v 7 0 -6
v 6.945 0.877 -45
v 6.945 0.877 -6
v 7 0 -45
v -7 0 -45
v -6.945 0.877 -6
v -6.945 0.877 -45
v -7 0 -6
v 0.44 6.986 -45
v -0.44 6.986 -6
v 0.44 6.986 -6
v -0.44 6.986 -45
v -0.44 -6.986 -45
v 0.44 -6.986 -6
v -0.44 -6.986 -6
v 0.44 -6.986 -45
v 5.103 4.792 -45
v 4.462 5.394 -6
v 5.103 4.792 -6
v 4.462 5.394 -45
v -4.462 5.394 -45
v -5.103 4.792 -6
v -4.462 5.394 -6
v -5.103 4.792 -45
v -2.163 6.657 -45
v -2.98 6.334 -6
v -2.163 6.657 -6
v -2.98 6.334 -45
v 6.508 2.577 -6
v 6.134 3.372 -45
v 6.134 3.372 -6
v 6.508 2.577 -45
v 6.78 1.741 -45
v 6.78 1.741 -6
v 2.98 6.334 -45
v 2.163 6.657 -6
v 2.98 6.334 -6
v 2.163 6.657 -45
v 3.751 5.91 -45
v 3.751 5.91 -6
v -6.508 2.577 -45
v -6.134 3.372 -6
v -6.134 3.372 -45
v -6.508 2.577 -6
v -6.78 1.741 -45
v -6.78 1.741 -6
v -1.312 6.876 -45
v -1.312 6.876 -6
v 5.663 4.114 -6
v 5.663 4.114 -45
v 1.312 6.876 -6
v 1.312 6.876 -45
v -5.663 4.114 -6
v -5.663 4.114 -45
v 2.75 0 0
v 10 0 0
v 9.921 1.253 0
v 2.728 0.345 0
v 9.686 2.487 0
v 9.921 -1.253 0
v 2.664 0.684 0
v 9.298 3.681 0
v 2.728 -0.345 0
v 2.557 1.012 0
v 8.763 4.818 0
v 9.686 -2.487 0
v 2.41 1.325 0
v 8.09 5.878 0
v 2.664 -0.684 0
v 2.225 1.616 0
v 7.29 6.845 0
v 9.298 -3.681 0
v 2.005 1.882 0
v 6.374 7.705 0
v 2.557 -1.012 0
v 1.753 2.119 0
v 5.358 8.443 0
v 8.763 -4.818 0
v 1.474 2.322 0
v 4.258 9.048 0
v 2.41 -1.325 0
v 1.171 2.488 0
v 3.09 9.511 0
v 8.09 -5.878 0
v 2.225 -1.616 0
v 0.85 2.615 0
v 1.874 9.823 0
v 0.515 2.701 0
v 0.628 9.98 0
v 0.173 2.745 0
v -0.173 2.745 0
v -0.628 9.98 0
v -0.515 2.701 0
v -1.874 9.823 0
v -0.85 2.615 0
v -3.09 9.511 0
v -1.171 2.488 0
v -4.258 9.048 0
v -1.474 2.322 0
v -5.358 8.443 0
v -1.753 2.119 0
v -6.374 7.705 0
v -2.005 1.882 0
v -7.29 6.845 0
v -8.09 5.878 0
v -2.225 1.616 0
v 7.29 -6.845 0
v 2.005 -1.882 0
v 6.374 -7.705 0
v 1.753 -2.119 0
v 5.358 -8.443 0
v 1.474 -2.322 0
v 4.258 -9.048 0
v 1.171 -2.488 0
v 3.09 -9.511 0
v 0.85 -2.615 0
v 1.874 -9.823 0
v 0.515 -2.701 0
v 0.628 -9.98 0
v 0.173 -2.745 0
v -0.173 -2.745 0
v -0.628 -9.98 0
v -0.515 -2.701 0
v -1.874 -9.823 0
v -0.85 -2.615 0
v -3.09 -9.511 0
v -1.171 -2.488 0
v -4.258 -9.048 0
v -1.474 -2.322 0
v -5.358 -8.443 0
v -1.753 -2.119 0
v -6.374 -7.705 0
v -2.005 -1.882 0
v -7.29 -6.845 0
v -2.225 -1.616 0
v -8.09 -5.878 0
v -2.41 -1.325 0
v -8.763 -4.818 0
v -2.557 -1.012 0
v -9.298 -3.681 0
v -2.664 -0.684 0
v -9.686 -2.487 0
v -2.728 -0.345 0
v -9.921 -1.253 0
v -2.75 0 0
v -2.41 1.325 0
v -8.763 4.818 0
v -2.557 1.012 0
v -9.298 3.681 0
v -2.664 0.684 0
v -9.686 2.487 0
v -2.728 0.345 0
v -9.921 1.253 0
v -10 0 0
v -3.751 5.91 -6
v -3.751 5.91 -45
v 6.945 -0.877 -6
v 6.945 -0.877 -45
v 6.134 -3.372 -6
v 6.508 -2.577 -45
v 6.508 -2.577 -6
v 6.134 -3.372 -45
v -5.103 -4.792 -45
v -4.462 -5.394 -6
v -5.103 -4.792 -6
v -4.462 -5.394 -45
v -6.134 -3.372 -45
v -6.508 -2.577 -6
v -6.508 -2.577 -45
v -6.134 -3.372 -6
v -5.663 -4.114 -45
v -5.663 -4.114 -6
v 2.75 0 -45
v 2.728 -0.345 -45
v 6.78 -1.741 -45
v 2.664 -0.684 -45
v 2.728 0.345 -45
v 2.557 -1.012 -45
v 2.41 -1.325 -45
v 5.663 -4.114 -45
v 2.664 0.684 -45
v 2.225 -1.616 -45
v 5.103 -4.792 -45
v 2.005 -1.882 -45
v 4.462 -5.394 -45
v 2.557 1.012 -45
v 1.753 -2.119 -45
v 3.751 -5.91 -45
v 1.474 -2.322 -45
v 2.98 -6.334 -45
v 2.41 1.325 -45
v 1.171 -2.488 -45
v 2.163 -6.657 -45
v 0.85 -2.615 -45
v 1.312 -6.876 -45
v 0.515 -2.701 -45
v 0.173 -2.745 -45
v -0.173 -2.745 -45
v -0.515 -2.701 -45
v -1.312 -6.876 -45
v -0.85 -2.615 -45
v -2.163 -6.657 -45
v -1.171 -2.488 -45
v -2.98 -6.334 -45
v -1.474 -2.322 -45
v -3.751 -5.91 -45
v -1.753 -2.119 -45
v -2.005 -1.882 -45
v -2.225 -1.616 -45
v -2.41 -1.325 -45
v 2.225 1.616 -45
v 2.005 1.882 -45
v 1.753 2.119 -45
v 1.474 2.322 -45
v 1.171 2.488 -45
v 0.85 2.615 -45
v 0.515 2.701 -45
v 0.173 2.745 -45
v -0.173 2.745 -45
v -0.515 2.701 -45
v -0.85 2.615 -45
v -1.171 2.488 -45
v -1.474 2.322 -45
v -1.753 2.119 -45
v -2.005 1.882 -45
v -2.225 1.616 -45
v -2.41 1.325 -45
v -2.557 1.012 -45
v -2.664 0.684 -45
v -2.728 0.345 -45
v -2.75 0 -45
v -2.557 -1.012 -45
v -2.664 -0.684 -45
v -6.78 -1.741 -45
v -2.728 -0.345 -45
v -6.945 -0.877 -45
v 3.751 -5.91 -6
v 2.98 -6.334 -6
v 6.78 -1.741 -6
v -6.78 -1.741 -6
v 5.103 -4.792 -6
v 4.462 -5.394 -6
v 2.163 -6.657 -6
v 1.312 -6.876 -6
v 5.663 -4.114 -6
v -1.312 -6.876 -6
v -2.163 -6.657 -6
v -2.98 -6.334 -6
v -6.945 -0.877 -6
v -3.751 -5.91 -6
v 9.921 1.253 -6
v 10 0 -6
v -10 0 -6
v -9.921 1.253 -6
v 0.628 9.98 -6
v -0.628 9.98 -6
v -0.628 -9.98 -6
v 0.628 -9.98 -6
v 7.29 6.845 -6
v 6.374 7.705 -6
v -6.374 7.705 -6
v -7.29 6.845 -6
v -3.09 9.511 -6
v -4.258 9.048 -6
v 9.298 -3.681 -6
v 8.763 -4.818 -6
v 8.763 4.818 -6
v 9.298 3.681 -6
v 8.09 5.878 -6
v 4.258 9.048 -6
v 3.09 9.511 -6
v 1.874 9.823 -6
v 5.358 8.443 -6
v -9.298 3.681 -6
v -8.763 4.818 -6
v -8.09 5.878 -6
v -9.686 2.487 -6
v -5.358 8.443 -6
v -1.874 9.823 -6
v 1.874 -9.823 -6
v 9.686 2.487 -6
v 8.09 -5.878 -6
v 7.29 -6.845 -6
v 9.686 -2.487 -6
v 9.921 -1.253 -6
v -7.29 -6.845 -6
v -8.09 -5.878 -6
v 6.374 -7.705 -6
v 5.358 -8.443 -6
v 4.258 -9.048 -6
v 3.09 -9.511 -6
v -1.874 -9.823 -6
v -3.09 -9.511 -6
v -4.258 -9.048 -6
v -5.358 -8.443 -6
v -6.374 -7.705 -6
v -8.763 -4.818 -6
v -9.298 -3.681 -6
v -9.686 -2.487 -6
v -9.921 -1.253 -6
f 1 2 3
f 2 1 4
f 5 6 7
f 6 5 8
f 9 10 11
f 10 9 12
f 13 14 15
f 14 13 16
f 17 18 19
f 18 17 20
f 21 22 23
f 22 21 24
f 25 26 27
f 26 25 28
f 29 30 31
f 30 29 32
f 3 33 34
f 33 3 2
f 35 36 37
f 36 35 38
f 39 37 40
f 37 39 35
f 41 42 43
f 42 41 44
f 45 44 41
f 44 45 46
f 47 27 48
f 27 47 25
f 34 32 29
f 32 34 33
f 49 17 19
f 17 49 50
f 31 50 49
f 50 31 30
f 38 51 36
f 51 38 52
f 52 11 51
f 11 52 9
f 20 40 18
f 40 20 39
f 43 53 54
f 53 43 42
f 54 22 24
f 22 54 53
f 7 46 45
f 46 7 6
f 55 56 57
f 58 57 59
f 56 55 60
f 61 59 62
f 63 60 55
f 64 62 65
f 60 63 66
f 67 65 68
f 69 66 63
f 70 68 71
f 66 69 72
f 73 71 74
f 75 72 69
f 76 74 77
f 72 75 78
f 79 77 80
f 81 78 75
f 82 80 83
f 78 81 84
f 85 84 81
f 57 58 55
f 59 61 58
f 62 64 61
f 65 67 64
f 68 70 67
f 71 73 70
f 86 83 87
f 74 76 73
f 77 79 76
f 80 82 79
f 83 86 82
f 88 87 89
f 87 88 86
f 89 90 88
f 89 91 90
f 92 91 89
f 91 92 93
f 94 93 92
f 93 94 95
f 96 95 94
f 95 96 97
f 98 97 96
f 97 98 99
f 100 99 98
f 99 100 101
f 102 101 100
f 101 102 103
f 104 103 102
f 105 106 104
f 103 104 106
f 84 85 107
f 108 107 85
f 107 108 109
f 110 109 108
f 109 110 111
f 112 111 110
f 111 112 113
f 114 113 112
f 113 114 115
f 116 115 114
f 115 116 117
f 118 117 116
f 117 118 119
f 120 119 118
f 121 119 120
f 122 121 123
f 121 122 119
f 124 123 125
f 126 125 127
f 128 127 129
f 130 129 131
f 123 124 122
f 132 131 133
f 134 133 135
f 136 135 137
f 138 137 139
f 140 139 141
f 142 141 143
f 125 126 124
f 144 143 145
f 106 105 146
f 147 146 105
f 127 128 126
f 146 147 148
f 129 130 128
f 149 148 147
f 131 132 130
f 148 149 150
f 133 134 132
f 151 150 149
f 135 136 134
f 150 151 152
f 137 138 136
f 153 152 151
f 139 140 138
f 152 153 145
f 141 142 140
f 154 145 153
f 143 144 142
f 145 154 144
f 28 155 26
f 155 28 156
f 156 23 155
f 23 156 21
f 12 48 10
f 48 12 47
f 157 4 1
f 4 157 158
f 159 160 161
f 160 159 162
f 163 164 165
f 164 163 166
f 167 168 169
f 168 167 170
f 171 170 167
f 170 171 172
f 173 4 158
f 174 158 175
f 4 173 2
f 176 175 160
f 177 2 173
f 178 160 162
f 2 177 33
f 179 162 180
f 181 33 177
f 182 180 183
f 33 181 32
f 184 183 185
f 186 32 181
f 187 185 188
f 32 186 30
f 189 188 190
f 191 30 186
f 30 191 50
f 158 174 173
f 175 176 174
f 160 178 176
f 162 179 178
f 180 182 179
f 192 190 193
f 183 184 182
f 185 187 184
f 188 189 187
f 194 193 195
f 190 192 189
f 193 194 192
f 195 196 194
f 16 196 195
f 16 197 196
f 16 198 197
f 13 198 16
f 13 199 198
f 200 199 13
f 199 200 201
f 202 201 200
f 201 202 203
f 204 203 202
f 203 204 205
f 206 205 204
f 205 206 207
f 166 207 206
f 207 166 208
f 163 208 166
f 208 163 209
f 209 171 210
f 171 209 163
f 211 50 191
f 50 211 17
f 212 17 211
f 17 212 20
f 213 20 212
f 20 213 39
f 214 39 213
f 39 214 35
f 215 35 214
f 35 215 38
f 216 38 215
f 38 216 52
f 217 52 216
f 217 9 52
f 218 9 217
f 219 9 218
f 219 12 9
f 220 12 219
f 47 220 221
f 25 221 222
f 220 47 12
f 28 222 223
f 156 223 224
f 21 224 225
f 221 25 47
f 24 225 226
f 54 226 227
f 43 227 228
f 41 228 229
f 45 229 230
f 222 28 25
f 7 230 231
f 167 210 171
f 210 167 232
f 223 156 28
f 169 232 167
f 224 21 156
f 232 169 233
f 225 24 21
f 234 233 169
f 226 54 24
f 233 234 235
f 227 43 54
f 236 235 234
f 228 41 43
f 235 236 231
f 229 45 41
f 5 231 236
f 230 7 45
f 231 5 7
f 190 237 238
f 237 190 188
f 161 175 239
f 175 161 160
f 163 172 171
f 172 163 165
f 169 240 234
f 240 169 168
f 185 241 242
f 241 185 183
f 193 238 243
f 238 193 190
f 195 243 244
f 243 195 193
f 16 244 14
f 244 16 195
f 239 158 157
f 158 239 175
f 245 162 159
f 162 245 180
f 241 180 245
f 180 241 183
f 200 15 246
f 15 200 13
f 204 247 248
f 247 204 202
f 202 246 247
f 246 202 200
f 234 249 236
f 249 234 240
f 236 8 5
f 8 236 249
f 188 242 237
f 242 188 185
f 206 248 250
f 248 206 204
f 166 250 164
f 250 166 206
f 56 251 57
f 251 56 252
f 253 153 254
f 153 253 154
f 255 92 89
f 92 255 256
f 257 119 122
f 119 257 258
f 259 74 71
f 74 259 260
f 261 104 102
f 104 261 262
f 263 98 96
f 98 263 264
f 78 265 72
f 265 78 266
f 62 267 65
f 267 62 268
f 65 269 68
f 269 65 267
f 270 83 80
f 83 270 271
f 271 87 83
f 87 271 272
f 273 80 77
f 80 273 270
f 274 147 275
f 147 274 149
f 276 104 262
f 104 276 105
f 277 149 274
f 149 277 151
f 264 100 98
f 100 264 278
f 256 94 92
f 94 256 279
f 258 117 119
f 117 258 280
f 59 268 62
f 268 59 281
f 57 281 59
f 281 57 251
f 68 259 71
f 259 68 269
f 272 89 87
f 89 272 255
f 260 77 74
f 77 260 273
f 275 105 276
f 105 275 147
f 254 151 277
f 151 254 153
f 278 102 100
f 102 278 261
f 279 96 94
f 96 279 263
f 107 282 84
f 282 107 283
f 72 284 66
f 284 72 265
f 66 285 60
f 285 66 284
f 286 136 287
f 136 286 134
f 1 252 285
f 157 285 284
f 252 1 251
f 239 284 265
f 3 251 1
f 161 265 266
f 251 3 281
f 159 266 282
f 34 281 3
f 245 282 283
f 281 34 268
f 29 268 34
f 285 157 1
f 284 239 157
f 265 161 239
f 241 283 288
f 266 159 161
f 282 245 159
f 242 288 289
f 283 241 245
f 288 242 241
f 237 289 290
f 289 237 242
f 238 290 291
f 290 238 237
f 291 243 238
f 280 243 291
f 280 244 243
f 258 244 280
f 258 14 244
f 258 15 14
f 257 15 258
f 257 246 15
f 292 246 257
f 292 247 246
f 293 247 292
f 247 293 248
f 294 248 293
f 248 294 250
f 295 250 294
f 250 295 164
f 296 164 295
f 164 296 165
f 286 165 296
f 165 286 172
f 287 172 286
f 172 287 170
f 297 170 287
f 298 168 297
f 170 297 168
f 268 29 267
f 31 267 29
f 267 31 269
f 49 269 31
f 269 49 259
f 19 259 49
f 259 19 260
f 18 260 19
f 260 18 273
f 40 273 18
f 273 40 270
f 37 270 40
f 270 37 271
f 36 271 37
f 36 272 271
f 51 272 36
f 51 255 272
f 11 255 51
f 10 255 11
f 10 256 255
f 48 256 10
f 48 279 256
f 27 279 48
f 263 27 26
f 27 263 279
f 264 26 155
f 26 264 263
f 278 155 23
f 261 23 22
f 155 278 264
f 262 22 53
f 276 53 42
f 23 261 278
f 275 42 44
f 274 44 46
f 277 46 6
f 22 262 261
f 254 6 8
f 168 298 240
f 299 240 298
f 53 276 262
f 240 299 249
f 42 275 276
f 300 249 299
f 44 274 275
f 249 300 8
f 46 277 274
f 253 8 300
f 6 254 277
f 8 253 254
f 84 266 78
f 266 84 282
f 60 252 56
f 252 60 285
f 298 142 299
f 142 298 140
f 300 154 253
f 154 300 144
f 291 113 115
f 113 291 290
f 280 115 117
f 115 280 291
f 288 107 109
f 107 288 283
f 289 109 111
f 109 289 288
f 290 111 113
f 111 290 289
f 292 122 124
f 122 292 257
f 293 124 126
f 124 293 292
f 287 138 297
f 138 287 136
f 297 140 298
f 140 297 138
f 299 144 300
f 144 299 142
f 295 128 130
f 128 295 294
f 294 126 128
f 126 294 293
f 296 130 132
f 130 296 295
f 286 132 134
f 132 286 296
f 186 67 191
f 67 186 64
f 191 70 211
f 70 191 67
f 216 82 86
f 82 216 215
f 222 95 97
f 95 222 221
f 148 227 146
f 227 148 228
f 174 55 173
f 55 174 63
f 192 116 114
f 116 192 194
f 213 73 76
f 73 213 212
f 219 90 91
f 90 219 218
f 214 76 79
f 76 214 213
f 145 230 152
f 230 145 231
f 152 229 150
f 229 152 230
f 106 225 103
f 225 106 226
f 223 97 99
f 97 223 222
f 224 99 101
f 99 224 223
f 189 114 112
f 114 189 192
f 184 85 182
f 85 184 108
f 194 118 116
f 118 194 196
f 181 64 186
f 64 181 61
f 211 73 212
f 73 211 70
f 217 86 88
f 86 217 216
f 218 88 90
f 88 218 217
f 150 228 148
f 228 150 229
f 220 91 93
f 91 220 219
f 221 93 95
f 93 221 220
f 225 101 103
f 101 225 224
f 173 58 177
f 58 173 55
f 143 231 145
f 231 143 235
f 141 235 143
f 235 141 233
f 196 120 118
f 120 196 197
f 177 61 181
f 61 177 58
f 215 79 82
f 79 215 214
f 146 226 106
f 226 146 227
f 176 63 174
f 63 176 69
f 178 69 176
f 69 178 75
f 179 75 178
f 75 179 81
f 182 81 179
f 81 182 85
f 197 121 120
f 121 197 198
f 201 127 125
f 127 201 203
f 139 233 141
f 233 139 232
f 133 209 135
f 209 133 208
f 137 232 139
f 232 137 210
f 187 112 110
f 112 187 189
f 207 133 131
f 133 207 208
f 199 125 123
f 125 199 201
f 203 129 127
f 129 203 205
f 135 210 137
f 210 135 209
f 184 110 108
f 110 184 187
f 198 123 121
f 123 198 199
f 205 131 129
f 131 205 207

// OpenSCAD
$fn = 50;


difference() {
	union() {
		translate(v = [0, 0, -45.0000000000]) {
			cylinder(h = 45, r = 7.0000000000);
		}
		translate(v = [0, 0, -6.0000000000]) {
			cylinder(h = 6, r = 10.0000000000);
		}
	}
	union() {
		#translate(v = [0, 0, -45]) {
			cylinder(h = 45, r = 2.7500000000);
		}
	}
}
